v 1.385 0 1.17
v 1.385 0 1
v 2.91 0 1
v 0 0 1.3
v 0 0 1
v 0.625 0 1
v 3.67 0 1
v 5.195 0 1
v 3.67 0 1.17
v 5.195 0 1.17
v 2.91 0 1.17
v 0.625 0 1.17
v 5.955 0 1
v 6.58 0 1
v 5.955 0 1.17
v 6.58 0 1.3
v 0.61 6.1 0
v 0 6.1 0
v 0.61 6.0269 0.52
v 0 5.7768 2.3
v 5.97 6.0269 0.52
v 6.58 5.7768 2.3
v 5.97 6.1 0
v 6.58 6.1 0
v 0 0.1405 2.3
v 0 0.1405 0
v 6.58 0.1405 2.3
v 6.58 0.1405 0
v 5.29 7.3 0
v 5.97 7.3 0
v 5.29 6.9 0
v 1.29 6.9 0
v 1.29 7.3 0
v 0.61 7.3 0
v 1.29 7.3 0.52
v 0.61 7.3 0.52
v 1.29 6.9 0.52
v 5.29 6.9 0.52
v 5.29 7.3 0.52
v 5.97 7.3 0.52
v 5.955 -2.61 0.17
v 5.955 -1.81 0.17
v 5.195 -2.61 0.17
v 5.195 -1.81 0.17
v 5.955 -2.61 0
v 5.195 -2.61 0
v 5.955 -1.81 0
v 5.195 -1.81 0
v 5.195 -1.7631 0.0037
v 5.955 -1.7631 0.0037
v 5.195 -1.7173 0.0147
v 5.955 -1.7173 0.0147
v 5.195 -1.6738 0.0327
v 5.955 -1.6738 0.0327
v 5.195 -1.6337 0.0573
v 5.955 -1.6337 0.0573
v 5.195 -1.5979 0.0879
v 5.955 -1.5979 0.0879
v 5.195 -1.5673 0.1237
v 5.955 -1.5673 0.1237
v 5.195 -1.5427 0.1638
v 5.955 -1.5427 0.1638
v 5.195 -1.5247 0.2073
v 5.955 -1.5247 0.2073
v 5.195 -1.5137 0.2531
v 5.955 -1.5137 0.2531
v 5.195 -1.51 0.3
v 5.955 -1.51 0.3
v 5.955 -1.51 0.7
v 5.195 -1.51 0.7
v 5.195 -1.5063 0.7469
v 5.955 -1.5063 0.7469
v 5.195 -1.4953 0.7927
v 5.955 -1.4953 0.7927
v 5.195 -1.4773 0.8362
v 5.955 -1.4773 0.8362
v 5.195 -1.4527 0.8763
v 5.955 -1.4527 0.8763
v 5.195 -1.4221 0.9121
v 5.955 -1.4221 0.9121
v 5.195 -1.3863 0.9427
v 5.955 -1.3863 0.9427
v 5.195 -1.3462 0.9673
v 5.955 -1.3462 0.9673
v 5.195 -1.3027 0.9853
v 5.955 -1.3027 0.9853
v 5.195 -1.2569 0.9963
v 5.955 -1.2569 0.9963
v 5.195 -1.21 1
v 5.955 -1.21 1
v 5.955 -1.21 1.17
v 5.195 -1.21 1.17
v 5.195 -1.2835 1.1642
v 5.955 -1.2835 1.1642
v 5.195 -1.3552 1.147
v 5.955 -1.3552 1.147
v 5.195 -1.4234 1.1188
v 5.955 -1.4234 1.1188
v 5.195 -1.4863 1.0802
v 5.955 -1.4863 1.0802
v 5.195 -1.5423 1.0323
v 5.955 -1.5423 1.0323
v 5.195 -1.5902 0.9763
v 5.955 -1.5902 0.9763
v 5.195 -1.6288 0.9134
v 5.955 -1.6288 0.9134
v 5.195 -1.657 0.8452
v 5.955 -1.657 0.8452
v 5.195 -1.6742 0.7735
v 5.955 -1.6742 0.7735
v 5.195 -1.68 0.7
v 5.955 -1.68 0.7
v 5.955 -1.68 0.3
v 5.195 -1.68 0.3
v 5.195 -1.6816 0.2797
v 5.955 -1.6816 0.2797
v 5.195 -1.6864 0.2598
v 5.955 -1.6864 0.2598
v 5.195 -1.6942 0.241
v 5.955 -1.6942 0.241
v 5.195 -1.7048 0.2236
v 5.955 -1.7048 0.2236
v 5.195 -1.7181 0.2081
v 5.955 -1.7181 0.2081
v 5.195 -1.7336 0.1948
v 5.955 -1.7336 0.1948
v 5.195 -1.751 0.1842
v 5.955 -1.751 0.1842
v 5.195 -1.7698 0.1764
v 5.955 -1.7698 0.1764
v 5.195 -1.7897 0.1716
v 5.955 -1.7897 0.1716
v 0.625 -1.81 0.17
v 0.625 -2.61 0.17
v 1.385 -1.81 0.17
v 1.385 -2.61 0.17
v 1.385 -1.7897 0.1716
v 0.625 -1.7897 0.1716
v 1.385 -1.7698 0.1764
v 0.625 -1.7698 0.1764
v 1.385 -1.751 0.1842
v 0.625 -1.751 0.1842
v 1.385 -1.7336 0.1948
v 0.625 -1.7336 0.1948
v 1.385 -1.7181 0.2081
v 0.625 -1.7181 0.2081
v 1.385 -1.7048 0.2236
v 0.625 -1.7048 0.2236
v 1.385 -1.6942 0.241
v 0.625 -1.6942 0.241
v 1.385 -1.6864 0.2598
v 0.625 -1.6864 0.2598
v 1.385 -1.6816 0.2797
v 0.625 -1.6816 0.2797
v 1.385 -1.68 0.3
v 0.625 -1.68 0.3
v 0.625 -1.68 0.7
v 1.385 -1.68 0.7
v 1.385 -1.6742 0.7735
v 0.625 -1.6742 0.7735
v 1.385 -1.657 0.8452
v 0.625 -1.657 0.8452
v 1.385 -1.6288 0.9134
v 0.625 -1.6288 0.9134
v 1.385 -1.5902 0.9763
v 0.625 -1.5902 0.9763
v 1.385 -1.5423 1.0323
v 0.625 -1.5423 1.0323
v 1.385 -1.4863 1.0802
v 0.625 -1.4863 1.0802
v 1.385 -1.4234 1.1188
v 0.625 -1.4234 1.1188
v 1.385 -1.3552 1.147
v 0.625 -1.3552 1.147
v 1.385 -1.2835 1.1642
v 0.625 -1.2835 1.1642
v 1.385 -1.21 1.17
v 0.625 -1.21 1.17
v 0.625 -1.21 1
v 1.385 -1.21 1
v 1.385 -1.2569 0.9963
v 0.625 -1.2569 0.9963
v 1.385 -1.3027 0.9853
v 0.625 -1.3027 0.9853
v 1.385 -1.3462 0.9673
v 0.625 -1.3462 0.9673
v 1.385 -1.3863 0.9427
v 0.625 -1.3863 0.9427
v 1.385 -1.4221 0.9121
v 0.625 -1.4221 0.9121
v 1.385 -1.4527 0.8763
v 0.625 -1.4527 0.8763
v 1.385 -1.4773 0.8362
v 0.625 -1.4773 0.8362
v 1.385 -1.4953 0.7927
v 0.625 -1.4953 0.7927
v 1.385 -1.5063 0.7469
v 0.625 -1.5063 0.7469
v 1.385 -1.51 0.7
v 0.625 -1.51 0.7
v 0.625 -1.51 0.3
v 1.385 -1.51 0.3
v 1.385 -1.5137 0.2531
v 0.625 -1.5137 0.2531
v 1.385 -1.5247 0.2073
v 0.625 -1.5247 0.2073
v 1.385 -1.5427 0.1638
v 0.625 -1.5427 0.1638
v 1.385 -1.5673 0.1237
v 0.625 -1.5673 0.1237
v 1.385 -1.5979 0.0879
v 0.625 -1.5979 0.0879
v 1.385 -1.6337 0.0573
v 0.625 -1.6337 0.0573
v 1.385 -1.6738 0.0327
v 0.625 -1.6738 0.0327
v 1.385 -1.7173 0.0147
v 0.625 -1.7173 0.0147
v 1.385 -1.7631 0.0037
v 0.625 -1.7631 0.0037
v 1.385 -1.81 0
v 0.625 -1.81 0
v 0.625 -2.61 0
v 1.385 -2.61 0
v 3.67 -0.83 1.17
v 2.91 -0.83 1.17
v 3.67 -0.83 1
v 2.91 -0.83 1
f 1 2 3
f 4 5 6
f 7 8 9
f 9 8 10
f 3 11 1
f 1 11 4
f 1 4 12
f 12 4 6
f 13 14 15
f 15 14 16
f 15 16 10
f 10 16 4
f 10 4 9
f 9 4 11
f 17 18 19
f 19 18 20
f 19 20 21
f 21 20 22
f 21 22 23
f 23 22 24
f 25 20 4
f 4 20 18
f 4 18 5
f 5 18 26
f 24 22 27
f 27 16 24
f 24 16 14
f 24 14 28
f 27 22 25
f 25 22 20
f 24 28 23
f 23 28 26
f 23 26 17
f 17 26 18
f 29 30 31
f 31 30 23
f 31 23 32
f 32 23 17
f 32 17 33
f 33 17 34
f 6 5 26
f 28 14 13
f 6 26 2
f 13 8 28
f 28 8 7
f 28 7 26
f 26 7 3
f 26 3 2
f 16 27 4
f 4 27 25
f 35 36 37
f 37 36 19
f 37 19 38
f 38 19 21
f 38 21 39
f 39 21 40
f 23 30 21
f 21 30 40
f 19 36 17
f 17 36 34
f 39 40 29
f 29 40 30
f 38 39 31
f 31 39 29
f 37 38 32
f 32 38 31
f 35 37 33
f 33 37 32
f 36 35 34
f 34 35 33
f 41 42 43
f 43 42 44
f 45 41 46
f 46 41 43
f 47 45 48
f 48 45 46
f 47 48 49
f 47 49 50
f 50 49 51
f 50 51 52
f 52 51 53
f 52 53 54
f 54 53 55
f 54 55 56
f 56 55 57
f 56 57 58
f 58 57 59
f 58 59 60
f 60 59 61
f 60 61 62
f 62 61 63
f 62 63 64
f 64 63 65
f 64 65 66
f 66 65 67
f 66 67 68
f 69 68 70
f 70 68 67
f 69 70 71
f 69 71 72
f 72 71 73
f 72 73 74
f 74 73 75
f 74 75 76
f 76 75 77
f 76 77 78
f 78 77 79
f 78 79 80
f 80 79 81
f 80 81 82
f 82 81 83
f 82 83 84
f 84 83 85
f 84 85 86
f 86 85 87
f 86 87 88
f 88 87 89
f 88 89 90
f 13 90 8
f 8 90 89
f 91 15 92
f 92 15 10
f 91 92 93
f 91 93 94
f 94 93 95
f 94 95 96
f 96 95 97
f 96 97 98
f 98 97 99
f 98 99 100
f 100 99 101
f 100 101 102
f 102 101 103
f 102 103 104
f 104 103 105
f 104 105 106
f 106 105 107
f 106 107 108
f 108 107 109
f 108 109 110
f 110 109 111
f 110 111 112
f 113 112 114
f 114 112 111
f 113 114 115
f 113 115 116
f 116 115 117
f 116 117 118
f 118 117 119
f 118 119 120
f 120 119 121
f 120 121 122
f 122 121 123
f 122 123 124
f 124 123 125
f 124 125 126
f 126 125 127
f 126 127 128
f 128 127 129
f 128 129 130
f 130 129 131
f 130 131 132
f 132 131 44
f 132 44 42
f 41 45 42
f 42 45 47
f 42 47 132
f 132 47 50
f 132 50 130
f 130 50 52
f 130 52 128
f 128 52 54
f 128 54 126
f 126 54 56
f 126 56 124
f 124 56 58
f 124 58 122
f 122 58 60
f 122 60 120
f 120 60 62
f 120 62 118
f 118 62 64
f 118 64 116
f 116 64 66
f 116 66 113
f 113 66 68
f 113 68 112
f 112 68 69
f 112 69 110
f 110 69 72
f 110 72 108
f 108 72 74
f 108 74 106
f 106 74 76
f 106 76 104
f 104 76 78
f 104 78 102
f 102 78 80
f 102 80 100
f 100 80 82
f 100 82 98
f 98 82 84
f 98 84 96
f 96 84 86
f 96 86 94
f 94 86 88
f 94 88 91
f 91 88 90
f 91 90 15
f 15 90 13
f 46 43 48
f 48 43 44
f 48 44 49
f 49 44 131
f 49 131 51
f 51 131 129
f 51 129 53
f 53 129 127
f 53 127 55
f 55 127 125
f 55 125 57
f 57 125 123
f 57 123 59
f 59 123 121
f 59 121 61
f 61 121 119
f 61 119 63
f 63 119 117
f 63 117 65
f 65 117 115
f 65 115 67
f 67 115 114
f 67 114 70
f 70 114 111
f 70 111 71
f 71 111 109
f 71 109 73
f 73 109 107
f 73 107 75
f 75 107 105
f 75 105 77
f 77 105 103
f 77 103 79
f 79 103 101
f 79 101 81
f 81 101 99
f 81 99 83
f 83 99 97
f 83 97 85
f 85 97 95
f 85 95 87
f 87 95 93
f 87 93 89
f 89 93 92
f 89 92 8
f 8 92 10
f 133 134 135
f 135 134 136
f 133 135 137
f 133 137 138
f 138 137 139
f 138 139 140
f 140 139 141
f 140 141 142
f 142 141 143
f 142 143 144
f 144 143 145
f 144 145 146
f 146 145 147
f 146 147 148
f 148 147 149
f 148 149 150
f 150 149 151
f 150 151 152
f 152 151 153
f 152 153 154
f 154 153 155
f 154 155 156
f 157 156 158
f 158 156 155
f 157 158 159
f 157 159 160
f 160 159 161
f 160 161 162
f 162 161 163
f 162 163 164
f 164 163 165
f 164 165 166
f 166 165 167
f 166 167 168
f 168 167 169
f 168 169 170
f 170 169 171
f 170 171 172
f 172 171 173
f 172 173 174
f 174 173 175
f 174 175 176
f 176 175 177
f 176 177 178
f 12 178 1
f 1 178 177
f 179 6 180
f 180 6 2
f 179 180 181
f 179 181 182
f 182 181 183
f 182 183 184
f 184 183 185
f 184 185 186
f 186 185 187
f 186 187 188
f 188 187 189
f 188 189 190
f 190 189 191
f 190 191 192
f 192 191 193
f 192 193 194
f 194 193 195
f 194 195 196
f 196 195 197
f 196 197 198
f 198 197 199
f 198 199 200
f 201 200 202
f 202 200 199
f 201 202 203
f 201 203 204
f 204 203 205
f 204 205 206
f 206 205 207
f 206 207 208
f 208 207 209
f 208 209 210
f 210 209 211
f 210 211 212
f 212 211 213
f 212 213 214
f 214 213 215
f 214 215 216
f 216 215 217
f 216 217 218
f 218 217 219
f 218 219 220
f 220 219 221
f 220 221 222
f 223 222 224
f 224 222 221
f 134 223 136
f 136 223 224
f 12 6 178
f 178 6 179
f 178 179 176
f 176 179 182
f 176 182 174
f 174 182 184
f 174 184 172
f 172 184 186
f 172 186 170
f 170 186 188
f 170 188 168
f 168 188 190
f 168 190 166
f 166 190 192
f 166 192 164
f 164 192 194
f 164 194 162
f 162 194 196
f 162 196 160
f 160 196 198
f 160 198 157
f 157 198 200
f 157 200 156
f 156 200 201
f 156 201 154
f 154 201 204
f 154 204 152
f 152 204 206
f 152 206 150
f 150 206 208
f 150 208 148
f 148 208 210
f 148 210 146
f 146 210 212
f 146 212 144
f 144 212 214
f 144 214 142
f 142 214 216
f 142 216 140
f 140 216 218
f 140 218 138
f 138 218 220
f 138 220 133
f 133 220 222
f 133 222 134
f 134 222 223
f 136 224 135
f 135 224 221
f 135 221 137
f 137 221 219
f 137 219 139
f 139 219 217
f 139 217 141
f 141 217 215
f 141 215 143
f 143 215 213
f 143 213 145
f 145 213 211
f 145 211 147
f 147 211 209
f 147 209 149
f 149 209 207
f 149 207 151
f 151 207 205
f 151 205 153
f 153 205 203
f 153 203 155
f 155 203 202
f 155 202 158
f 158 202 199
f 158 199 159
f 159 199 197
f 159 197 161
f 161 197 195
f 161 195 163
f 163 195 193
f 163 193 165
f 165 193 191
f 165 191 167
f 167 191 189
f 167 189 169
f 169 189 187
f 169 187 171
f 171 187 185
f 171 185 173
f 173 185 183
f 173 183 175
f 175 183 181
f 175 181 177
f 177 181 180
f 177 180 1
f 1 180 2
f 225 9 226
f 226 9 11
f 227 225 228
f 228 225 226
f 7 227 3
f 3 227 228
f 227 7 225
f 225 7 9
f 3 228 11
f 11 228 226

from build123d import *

# Parameters (mm, degrees)
SKETCH1_W           = 6.58
SKETCH1_H           = 6.1
BOSS_EXTRUDE1_DEPTH = 2.3
DRAFT1_ANGLE        = -8
CHAMFER1_SIZE       = 1
CHAMFER1_SIZE2      = 0.140540835
BOSS_EXTRUDE2_DEPTH = 0.52
EXTRUDE_THIN1_DEPTH = 0.38
SKETCH4_W           = 0.17
SKETCH4_H           = 0.83
EXTRUDE_THIN2_DEPTH = 0.38


with BuildPart() as part:
    # Sketch1 → Boss-Extrude1 (new body)
    with BuildSketch(Plane.XY):
        with Locations((3.29, 3.05)):
            Rectangle(SKETCH1_W, SKETCH1_H)
    extrude(amount=BOSS_EXTRUDE1_DEPTH)

    # Draft1
    draft1_faces = [part.faces().sort_by_distance(p)[0] for p in [
        (3.29, 6.1, 1.15),
    ]]
    draft(draft1_faces, Plane(origin=(0, 0, 0), x_dir=(-1, 0, 0), z_dir=(0, 0, -1)), DRAFT1_ANGLE)

    # Chamfer1
    chamfer1_edges = [part.edges().sort_by_distance(p)[0] for p in [
        (3.29, 0, 0),
        (3.29, 0, 2.3),
    ]]
    chamfer1_side = [part.faces().sort_by_distance(p)[0] for p in [
        (3.29, 0, 1.15),
    ]]
    chamfer(chamfer1_edges, length=CHAMFER1_SIZE, length2=CHAMFER1_SIZE2, reference=chamfer1_side[0])

    # Sketch2 → Boss-Extrude2 (add)
    with BuildSketch(Plane.XY):
        Polygon((0.61, 5.77675608), (5.97, 5.77675608), (5.97, 6.1), (5.97, 7.3), (5.29, 7.3), (5.29, 6.9), (1.29, 6.9), (1.29, 7.3), (0.61, 7.3), (0.61, 6.1), align=None)
    extrude(amount=BOSS_EXTRUDE2_DEPTH)

    # Sketch3 → Extrude-Thin1 (add, symmetric)
    with BuildSketch(Plane(origin=(5.575, 0, 0), x_dir=(0, 0, -1), z_dir=(1, 0, 0))):
        with BuildLine():
            Line((-1, 0), (-1, -1.21))
            ThreePointArc((-1, -1.21), (-0.912132034, -1.422132034), (-0.7, -1.51))
            Line((-0.7, -1.51), (-0.3, -1.51))
            ThreePointArc((-0.3, -1.51), (-0.087867966, -1.597867966), (0, -1.81))
            Line((0, -1.81), (0, -2.61))
            Line((0, -2.61), (-0.17, -2.61))
            Line((-0.17, -2.61), (-0.17, -1.81))
            ThreePointArc((-0.17, -1.81), (-0.208076118, -1.718076118), (-0.3, -1.68))
            Line((-0.3, -1.68), (-0.7, -1.68))
            ThreePointArc((-0.7, -1.68), (-1.032340187, -1.542340187), (-1.17, -1.21))
            Line((-1.17, -1.21), (-1.17, 0))
            Line((-1.17, 0), (-1, 0))
        make_face()
    extrude_thin1 = extrude(amount=EXTRUDE_THIN1_DEPTH, both=True)

    # Mirror1: Extrude-Thin1 across plane
    add(extrude_thin1.mirror(Plane(origin=(3.29, 0, 0), x_dir=(0, 0, 1), z_dir=(1, 0, 0))))

    # Sketch4 → Extrude-Thin2 (add, symmetric)
    with BuildSketch(Plane(origin=(3.29, 0, 0), x_dir=(0, 0, -1), z_dir=(1, 0, 0))):
        with Locations((-1.085, -0.415)):
            Rectangle(SKETCH4_W, SKETCH4_H)
    extrude(amount=EXTRUDE_THIN2_DEPTH, both=True)


solid = part.part
